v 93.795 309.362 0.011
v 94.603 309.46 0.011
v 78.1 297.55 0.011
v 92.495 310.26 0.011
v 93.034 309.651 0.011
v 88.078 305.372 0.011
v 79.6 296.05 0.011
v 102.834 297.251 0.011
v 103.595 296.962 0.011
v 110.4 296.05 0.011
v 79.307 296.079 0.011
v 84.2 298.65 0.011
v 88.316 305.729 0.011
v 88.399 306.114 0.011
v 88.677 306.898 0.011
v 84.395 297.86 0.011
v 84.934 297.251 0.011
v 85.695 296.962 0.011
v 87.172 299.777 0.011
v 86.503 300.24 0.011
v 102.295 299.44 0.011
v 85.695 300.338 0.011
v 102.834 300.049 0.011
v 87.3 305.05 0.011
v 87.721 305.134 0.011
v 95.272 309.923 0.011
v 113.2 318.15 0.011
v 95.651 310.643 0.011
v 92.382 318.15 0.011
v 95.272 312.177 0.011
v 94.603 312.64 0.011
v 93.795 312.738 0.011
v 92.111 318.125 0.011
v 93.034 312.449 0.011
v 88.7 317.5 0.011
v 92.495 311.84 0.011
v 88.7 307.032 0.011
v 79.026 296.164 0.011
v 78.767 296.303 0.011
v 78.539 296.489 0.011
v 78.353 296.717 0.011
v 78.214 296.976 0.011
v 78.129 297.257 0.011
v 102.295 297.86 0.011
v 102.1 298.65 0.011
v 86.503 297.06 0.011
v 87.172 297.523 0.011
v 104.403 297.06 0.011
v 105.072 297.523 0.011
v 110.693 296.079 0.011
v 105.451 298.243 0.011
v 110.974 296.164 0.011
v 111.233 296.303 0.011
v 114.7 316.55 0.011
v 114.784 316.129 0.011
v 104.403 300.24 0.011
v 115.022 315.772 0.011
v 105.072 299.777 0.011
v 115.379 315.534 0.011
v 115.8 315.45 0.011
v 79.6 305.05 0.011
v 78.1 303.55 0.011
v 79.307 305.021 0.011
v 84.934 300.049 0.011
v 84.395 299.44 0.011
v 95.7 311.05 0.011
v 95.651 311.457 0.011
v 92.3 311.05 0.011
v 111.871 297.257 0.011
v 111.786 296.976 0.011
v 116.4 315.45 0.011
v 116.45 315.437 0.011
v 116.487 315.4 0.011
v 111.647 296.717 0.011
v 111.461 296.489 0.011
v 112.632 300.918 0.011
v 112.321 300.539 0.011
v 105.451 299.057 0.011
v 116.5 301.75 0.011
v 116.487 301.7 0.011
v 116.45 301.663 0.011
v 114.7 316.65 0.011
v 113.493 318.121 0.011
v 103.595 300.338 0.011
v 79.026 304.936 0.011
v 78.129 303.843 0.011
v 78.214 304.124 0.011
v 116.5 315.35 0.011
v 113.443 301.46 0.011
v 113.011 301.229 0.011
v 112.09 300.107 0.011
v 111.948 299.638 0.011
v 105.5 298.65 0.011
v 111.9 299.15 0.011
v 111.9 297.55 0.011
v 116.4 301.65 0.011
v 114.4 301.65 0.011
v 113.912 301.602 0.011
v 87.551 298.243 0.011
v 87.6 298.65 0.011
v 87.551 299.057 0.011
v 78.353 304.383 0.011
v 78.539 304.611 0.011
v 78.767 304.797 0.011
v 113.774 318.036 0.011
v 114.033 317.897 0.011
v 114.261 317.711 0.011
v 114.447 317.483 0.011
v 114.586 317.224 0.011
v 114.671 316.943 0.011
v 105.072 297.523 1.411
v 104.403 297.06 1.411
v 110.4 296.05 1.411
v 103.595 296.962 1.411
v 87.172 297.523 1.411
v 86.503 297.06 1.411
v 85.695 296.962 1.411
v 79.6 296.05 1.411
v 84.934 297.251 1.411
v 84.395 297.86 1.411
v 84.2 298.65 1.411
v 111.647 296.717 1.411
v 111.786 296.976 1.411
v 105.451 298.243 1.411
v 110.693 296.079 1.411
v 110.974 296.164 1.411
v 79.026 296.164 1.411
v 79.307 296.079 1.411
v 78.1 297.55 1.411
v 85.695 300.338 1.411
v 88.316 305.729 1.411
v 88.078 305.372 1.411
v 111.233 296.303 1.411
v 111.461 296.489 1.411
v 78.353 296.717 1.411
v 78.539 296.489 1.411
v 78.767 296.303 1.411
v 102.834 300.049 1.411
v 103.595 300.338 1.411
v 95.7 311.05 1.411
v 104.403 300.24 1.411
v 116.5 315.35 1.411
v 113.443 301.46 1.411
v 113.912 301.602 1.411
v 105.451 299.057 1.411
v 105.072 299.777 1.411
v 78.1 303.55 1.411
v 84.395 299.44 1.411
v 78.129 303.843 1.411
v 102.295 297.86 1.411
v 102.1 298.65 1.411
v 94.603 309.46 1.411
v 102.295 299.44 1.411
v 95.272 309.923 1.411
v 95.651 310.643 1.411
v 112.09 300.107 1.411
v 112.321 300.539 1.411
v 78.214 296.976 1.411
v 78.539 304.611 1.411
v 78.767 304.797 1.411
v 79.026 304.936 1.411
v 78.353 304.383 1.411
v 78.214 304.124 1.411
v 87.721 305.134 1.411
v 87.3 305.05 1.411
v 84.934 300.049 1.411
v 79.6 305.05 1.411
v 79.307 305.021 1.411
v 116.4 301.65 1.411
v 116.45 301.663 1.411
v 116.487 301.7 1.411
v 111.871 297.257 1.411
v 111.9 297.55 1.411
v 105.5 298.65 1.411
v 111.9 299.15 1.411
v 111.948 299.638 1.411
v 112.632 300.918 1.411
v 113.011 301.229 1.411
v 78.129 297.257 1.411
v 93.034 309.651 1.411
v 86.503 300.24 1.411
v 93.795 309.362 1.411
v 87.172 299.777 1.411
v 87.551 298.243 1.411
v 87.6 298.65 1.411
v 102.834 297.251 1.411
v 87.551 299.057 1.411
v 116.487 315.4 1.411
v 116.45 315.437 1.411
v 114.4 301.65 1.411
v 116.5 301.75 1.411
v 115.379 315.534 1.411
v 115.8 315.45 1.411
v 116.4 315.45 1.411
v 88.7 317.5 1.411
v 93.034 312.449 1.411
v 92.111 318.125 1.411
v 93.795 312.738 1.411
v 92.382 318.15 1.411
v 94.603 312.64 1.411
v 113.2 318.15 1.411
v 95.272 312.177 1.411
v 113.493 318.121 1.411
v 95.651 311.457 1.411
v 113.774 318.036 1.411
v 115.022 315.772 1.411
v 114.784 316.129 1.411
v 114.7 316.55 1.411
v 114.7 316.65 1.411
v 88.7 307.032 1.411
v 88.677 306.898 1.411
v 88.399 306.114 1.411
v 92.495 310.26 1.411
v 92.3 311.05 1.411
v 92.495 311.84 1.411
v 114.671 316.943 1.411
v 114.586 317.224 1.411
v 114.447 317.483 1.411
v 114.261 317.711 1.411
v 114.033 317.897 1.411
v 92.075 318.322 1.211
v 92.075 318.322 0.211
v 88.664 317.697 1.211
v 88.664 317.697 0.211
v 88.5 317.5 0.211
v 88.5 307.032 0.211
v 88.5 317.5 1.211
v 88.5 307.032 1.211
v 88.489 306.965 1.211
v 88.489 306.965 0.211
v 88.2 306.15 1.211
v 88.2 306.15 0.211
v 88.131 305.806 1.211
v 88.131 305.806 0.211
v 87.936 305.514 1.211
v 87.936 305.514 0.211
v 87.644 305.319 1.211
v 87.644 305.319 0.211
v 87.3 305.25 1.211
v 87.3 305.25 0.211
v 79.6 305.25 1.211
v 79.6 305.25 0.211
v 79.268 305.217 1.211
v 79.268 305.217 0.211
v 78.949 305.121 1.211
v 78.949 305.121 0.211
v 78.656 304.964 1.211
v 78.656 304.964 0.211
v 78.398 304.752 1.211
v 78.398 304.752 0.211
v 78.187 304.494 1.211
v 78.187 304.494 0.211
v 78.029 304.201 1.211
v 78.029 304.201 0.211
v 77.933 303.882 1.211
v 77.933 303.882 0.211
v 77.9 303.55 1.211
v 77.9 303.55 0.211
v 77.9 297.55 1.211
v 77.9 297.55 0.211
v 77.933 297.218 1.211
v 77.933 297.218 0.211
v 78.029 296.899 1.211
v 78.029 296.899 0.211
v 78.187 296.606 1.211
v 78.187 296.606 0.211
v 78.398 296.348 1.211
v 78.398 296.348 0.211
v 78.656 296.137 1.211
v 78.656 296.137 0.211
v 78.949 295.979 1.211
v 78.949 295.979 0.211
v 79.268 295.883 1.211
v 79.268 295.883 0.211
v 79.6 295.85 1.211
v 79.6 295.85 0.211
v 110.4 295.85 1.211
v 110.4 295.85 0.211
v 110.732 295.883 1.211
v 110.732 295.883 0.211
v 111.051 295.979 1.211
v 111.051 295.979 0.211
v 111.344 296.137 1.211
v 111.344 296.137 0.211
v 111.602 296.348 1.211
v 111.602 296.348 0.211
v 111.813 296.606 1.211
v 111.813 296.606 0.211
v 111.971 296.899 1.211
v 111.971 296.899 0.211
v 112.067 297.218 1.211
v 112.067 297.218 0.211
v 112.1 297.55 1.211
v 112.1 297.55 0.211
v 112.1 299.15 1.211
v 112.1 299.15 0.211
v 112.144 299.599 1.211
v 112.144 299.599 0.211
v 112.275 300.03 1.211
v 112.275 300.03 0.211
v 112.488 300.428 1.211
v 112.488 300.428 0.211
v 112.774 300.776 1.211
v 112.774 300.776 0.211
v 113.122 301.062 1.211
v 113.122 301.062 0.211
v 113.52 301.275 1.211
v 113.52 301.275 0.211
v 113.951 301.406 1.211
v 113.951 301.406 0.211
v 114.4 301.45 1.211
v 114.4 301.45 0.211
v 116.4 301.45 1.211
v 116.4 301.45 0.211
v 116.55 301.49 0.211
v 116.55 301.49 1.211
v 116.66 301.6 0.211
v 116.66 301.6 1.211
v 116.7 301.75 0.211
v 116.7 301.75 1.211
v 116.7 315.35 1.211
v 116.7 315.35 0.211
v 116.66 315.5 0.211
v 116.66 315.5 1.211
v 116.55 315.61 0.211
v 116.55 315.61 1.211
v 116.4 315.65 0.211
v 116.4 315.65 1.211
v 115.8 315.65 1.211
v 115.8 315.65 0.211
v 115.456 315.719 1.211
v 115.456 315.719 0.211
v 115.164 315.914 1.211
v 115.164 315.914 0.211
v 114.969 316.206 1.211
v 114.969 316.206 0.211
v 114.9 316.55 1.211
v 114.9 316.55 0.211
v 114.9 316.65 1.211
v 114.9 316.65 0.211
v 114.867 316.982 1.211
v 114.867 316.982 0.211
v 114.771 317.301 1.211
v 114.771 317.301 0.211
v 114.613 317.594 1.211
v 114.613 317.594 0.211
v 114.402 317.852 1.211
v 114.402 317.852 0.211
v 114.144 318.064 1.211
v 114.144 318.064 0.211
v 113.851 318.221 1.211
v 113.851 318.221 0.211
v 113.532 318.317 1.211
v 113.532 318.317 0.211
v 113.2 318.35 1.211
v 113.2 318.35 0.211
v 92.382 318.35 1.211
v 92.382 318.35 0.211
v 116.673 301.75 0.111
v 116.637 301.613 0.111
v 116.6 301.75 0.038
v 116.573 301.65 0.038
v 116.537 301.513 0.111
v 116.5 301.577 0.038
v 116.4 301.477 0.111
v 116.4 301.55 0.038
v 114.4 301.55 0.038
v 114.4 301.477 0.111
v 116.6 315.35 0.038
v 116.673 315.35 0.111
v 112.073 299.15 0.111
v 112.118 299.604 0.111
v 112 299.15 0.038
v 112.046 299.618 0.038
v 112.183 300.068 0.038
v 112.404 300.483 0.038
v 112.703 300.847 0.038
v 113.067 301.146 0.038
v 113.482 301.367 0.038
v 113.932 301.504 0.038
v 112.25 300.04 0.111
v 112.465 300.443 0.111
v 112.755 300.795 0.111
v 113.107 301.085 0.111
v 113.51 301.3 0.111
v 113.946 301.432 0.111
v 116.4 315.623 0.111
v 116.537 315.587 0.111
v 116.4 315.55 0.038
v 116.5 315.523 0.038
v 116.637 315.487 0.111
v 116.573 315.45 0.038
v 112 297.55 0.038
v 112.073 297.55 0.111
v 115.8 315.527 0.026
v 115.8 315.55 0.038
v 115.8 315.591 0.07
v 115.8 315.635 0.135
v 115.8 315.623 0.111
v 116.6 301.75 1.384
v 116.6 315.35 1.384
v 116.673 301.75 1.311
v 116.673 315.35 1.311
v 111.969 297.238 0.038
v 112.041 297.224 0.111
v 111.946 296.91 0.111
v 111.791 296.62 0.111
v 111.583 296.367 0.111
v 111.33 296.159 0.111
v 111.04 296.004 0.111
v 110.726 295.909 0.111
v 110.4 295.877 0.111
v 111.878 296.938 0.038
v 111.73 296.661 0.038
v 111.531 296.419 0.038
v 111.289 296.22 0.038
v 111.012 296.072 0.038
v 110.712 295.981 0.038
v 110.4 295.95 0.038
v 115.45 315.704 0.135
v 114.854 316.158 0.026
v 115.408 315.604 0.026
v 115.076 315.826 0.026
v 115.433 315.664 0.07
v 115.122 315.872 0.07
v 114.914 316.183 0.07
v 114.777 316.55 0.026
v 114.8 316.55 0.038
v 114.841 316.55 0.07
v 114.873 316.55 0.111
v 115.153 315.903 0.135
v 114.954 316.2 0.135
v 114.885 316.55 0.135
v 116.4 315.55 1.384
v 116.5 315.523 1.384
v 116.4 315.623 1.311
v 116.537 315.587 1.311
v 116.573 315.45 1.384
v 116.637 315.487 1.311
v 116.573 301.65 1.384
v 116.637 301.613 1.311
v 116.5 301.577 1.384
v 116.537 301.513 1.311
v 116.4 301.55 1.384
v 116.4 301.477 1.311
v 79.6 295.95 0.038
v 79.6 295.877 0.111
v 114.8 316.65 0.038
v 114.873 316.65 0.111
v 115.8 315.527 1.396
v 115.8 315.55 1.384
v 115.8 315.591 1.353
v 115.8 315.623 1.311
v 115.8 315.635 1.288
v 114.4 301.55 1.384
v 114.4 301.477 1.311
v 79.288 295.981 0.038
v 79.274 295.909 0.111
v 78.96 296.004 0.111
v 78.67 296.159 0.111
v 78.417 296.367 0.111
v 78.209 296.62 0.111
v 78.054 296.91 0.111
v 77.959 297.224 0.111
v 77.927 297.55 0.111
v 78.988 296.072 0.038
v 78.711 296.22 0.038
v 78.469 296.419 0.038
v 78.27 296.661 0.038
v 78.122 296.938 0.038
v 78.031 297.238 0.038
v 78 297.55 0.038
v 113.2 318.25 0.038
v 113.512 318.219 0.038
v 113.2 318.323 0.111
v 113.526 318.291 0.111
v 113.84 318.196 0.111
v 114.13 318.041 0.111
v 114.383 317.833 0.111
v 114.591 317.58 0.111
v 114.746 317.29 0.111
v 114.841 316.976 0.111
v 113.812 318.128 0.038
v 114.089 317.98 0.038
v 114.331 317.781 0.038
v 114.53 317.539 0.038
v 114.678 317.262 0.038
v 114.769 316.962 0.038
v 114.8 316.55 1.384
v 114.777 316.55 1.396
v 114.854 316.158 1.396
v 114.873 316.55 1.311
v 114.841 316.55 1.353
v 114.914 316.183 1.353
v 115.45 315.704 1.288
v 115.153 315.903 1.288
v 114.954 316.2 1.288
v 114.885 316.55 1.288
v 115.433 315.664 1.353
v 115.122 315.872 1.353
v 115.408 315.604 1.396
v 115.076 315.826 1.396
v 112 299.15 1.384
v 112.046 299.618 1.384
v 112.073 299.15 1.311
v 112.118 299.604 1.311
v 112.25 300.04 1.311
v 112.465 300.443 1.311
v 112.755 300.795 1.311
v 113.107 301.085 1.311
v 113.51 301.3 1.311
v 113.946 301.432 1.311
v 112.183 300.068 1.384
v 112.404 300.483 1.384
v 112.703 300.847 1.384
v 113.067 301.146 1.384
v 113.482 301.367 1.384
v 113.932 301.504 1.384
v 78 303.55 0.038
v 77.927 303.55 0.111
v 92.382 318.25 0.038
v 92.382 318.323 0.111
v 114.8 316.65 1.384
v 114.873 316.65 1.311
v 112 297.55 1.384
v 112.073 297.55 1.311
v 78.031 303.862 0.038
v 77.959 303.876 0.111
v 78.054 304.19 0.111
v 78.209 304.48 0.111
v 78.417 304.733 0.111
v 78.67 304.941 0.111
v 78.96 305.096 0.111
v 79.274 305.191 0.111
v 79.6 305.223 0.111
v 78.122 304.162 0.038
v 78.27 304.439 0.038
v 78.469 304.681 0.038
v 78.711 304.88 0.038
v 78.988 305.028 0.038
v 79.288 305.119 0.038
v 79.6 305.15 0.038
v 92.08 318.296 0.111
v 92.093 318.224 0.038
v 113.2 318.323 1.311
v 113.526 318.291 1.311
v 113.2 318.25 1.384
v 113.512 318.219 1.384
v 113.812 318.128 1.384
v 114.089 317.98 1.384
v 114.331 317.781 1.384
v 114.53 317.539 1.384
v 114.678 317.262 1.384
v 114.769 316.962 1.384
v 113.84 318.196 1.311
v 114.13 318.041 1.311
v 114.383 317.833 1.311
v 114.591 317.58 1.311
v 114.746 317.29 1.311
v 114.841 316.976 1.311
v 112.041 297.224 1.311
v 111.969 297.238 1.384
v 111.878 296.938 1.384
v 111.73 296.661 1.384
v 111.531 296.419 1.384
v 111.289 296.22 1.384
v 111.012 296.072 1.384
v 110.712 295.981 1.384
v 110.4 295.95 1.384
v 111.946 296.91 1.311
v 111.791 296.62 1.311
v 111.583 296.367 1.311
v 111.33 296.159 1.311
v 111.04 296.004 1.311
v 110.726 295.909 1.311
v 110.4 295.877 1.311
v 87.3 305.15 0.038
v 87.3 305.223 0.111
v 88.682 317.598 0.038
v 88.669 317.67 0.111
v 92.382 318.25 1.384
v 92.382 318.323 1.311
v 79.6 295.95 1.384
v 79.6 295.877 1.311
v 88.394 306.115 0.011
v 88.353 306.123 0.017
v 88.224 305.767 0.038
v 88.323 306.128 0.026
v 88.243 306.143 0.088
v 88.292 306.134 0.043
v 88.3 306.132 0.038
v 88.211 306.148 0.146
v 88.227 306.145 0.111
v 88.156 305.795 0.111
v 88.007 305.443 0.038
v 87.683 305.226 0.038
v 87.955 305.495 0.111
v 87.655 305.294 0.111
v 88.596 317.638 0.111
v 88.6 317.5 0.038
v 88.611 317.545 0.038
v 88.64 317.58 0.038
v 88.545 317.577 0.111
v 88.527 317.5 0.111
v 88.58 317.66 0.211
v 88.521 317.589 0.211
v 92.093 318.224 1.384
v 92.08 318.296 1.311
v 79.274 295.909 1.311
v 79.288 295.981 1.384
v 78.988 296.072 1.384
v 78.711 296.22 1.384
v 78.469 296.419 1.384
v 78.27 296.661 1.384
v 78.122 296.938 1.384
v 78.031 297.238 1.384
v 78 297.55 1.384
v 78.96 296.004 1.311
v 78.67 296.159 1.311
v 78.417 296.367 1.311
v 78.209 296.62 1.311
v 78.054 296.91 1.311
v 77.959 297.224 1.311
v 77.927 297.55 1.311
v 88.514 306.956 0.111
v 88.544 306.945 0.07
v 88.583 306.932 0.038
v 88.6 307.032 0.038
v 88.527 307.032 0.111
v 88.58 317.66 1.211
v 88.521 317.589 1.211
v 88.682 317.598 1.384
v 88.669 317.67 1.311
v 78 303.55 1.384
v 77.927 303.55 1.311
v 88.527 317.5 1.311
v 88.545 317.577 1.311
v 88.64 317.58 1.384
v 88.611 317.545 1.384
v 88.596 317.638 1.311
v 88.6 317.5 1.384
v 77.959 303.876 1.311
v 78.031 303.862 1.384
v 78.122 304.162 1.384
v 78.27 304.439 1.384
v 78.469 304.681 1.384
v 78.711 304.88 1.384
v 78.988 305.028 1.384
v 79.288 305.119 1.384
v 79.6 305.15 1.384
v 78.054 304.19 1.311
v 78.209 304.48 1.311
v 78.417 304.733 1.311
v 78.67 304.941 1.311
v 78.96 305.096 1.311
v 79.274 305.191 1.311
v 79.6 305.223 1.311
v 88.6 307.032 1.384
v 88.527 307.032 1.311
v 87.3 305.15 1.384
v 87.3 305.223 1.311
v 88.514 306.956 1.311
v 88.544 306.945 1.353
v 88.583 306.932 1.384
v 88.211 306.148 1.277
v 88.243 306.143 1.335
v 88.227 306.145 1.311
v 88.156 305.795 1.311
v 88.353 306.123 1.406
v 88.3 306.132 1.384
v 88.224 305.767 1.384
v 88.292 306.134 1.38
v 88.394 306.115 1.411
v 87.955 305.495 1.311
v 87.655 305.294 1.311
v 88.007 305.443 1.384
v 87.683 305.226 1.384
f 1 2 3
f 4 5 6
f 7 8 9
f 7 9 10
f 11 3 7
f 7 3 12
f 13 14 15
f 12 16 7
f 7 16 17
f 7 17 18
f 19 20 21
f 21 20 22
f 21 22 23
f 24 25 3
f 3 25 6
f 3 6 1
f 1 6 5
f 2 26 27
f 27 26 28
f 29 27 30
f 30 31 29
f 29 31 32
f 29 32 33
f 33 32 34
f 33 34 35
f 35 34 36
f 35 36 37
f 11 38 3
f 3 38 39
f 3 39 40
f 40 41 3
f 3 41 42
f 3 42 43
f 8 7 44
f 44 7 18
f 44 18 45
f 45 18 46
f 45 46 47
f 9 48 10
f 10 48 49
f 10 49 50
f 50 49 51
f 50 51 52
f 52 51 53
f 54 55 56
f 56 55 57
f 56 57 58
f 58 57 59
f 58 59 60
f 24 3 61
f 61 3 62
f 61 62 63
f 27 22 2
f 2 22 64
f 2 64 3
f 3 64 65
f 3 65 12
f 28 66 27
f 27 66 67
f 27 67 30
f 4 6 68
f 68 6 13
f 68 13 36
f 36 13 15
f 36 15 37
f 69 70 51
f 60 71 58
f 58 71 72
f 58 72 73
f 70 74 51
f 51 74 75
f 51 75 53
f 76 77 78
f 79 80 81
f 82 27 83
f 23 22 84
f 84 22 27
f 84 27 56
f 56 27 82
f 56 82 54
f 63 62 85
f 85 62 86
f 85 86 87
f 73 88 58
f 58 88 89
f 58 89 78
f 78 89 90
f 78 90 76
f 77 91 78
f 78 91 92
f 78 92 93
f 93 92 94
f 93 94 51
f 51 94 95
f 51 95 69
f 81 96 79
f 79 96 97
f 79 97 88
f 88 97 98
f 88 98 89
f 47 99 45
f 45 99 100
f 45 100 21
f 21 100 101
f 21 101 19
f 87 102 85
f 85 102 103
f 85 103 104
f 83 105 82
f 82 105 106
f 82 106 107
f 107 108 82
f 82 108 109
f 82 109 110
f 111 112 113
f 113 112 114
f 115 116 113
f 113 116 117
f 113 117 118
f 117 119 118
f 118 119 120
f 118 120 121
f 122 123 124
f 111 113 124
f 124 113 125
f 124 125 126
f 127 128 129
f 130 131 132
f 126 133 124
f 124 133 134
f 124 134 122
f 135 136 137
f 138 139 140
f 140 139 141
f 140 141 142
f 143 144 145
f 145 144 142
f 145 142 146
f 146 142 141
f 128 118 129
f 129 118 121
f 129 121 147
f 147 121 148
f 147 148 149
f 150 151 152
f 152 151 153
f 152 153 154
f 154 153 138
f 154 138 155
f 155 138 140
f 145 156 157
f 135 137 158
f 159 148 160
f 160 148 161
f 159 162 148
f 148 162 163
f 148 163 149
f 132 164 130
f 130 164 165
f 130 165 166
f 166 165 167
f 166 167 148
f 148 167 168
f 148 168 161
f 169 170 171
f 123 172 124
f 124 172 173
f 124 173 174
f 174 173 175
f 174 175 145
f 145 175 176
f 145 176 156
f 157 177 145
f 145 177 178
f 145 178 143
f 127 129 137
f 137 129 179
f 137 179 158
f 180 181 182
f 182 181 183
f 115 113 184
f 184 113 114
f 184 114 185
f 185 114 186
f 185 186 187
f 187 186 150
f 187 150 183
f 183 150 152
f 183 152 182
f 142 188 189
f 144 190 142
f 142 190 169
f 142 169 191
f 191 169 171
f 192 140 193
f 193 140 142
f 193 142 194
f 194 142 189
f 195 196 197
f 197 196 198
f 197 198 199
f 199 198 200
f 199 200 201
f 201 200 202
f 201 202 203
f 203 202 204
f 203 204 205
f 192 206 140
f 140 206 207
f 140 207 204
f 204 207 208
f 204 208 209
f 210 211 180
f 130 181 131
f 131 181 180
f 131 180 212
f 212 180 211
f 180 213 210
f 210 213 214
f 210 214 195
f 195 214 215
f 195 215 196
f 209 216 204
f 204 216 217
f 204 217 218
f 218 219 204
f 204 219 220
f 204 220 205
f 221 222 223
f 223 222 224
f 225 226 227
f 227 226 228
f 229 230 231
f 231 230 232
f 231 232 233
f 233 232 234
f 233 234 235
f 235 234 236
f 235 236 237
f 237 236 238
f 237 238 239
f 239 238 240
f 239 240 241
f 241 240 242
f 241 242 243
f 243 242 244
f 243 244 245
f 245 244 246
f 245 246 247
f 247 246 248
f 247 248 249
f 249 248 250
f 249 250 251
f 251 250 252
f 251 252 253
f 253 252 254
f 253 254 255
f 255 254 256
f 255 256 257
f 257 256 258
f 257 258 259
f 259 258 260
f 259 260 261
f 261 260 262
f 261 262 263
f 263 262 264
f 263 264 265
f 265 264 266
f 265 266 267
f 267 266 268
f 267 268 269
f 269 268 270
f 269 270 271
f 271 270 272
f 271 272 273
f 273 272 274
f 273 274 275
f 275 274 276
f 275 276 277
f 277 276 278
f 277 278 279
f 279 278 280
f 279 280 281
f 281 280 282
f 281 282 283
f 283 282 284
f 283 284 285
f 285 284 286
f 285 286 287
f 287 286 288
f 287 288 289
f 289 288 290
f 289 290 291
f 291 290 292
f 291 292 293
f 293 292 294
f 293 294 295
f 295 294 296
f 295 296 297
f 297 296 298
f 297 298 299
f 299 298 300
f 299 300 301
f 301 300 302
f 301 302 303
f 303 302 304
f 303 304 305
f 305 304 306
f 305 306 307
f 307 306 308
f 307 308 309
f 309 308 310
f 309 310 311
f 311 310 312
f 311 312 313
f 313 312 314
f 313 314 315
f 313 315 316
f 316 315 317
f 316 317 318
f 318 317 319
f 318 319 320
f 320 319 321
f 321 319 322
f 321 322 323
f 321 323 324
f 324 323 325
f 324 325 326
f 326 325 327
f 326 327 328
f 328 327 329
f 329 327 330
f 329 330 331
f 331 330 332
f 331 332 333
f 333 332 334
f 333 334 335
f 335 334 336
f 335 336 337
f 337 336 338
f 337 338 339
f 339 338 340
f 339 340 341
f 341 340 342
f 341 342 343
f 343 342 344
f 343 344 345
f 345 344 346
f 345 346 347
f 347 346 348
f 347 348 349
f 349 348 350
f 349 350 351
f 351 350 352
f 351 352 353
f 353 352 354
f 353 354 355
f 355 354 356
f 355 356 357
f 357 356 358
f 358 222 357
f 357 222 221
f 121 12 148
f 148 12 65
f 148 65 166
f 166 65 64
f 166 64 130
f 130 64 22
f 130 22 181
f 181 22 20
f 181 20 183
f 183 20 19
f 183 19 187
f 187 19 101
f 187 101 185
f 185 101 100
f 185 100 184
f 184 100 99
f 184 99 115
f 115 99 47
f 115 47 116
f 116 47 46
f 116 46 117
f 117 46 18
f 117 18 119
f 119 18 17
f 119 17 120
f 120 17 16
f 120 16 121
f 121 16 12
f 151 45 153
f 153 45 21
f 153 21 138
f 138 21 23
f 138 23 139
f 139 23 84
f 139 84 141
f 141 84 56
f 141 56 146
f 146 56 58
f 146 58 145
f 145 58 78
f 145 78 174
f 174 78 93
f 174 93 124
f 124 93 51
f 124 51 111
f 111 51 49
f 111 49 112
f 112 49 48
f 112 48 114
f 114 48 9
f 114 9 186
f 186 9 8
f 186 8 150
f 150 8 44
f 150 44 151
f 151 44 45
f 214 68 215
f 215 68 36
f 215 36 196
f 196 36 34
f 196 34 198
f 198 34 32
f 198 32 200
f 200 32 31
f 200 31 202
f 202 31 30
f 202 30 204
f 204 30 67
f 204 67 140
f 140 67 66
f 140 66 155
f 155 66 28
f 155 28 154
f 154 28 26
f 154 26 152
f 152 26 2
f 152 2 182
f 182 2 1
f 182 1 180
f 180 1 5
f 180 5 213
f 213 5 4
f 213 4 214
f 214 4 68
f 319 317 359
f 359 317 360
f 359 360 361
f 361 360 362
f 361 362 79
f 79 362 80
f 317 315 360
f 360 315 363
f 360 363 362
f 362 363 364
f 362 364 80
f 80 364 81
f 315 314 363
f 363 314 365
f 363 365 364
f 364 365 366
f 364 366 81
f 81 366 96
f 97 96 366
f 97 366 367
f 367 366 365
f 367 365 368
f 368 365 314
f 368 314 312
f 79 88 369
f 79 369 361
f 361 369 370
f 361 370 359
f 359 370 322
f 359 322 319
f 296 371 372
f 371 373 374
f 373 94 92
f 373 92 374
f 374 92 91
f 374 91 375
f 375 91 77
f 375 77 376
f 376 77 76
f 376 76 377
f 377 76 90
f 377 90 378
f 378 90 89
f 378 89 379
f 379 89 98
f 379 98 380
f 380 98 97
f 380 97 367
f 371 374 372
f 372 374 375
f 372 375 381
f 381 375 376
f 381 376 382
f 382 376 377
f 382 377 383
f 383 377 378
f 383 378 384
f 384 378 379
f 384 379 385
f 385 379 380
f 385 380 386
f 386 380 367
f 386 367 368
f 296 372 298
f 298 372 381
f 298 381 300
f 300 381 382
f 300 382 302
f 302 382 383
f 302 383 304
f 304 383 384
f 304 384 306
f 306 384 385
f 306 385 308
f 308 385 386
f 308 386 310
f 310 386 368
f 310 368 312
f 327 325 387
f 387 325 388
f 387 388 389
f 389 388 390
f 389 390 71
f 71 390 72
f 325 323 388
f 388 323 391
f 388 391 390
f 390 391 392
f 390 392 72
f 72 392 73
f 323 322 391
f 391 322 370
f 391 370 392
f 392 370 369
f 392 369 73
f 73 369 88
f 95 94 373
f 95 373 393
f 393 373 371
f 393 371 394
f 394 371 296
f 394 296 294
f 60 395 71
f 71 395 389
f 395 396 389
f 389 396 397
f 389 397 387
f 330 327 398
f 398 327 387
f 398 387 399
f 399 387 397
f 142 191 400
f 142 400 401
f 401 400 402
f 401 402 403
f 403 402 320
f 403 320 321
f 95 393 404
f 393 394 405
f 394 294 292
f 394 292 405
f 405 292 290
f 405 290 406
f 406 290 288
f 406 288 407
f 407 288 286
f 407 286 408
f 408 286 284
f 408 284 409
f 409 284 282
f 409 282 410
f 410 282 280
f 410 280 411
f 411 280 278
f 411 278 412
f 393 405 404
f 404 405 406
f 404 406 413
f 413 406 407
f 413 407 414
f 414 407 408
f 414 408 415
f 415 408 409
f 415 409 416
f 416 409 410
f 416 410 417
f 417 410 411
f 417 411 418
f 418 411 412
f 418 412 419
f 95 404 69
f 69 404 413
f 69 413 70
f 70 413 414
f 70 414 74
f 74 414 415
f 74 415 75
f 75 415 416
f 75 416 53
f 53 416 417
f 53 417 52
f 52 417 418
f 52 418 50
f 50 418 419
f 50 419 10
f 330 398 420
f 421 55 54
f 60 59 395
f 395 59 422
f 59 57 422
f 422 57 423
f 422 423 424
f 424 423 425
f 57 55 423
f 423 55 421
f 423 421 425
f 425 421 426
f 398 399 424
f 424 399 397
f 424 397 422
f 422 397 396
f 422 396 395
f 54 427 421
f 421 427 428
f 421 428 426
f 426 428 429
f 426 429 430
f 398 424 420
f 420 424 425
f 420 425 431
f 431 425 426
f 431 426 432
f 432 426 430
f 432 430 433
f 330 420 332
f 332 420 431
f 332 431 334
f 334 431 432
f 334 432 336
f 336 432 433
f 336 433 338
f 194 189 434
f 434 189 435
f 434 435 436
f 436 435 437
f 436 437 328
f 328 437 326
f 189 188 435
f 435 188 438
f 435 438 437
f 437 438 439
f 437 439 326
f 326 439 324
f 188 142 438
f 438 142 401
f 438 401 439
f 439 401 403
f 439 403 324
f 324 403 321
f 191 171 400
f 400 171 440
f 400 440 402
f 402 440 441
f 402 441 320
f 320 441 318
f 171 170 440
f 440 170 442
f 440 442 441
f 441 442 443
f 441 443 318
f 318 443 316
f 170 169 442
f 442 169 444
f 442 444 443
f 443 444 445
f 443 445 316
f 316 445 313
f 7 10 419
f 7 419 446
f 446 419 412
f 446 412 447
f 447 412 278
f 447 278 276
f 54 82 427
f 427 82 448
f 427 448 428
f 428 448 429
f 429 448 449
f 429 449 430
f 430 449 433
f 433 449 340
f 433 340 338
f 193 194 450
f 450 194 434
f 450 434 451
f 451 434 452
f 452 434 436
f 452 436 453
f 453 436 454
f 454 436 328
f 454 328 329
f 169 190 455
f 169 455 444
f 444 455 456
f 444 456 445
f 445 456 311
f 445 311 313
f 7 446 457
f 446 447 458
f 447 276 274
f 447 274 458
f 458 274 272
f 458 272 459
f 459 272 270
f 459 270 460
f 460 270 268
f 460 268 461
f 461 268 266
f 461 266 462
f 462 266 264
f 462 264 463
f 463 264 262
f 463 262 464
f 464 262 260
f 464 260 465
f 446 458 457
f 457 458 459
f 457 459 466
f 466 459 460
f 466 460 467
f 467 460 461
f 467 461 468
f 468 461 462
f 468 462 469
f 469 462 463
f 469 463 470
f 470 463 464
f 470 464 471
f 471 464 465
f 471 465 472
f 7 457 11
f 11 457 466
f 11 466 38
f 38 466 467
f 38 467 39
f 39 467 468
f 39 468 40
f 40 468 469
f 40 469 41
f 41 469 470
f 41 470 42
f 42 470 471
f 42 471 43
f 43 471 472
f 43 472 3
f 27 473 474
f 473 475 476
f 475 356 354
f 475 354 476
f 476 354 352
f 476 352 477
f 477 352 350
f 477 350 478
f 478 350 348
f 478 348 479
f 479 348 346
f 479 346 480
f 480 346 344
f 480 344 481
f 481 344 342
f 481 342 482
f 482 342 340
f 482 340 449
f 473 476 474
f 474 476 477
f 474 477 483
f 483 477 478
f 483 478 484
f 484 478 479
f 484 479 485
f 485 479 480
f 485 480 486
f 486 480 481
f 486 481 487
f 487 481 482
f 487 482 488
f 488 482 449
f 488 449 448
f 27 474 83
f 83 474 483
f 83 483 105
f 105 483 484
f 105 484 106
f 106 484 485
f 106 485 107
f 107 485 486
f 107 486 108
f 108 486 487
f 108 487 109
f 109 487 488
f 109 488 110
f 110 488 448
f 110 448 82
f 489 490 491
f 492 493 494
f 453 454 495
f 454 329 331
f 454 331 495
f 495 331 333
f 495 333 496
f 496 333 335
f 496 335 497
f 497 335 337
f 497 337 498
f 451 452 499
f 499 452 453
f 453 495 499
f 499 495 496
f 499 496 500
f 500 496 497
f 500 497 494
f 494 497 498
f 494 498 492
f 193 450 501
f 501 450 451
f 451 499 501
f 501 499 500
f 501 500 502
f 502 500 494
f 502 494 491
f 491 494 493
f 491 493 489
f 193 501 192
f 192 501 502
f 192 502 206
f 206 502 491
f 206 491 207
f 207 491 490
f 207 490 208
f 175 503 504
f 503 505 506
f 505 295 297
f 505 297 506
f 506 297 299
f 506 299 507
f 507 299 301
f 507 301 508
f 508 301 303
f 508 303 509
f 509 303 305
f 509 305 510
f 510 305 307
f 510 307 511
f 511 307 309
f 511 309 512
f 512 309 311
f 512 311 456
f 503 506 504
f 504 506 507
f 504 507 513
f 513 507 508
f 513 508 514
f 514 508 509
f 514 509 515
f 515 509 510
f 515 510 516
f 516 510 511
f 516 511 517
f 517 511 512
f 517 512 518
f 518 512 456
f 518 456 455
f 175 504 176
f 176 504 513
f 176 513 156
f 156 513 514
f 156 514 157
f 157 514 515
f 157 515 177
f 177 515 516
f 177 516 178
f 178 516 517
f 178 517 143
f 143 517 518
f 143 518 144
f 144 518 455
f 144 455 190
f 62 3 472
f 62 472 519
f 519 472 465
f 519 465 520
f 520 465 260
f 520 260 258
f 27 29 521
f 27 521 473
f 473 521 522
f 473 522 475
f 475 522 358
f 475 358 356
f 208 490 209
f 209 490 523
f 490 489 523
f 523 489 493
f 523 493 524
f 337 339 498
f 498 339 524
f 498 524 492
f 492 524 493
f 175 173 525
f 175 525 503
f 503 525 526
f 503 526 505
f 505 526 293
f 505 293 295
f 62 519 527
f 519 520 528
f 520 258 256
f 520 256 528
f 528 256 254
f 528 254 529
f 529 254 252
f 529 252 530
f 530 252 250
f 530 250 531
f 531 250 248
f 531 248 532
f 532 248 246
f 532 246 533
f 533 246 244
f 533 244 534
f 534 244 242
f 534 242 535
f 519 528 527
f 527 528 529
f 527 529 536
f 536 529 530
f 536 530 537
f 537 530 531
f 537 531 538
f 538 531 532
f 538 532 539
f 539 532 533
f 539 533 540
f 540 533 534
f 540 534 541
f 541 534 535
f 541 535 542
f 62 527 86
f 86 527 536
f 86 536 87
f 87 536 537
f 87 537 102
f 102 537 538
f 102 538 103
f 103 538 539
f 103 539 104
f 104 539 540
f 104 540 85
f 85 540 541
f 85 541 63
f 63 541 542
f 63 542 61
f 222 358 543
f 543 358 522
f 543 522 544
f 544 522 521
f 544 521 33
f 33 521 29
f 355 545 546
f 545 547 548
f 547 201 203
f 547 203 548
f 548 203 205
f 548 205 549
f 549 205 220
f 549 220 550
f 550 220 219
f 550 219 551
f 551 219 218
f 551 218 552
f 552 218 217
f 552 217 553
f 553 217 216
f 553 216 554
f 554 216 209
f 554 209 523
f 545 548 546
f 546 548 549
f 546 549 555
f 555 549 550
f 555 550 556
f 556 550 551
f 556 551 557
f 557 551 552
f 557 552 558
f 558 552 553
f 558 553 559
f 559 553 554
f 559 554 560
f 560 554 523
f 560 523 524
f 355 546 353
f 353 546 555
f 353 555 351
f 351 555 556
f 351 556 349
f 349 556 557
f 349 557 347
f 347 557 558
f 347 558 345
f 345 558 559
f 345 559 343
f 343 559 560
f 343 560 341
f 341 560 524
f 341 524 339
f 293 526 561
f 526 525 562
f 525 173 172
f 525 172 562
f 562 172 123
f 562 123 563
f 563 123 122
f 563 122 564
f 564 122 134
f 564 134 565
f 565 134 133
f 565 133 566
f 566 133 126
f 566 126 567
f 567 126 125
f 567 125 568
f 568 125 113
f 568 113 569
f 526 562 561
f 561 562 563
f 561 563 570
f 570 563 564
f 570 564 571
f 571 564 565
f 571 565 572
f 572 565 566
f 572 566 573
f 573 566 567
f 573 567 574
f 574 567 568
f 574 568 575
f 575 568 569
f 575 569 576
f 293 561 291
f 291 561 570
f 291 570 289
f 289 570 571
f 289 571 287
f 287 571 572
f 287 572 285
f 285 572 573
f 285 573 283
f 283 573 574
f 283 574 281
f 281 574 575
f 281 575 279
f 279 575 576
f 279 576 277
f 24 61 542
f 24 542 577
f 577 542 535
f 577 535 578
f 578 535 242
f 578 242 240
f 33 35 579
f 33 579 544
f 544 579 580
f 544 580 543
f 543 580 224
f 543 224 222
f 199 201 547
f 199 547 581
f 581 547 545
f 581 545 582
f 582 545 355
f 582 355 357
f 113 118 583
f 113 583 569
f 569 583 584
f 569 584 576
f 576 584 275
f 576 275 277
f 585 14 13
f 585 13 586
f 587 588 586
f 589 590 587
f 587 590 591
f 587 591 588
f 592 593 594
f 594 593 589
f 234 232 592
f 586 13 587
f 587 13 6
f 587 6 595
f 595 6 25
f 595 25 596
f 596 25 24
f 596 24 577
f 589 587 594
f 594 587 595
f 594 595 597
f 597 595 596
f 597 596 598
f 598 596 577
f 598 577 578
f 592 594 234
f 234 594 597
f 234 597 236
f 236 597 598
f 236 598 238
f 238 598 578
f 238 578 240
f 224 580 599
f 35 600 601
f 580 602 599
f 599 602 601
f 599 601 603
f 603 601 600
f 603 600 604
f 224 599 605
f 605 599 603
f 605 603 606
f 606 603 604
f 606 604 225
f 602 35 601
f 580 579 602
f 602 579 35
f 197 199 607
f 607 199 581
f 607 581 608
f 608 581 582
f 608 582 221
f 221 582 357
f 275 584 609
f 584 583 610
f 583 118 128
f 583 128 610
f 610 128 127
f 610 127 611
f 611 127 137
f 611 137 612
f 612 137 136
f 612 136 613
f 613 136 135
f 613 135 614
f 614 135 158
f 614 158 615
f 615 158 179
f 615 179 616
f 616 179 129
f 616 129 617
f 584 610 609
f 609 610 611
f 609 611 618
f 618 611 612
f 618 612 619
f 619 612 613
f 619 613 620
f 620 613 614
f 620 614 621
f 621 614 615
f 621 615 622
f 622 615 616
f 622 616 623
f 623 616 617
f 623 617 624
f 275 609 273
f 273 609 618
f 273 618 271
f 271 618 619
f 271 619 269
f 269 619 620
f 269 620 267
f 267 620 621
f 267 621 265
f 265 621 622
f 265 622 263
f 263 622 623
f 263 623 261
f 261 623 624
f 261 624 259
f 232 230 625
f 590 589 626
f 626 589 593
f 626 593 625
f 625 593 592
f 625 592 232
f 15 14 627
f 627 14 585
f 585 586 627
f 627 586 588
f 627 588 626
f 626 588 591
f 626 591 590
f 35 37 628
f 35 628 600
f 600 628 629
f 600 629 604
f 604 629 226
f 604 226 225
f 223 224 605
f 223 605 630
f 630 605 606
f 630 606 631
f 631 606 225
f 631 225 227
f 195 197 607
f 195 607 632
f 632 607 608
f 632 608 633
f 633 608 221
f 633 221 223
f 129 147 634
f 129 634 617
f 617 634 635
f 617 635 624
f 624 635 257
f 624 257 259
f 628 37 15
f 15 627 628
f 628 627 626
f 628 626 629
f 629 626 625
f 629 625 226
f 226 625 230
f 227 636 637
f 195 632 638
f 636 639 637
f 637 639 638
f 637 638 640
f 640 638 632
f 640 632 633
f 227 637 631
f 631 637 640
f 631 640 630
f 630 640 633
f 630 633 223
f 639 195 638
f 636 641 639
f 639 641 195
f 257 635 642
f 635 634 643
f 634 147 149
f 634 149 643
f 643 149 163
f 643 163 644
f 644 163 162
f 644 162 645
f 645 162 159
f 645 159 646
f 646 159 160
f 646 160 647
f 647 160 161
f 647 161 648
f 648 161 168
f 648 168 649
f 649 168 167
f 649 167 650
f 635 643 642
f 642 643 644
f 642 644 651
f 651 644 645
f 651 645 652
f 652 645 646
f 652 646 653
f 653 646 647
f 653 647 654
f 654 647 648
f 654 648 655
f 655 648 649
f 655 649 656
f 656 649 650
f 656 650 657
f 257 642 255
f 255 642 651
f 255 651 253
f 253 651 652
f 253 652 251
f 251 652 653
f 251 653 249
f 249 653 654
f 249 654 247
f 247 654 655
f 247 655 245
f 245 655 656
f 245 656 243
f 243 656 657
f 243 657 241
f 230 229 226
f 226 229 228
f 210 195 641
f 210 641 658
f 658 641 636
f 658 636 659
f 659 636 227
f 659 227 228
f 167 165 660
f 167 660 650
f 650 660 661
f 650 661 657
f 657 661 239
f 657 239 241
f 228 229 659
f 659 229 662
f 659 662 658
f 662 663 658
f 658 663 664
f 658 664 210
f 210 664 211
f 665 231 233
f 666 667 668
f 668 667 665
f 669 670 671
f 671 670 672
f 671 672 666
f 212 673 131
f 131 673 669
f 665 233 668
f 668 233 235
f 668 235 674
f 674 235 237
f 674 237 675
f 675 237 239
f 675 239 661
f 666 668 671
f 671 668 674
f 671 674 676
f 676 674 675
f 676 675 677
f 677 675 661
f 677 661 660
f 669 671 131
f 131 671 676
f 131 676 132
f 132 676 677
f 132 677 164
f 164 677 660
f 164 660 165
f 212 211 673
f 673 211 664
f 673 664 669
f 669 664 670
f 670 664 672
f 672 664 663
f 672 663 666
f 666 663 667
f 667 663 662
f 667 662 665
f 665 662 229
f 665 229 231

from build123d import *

# Parameters (mm, degrees)
SKETCH1_R           = 1.7
BOSS_EXTRUDE1_DEPTH = 1.4
FILLET1_R           = 0.2


with BuildPart() as part:
    # Sketch1 → Boss-Extrude1 (new body)
    with BuildSketch(Plane.XY):
        with BuildLine():
            Line((88.2, 306.15), (88.5, 306.997300304))
            Line((88.5, 306.997300304), (88.5, 317.666666667))
            Line((88.5, 317.666666667), (92.075260805, 318.322131148))
            ThreePointArc((92.075260805, 318.322131148), (92.227907414, 318.343018451), (92.381818182, 318.35))
            Line((92.381818182, 318.35), (113.2, 318.35))
            ThreePointArc((113.2, 318.35), (114.402081528, 317.852081528), (114.9, 316.65))
            Line((114.9, 316.65), (114.9, 316.55))
            ThreePointArc((114.9, 316.55), (115.163603897, 315.913603897), (115.8, 315.65))
            Line((115.8, 315.65), (116.4, 315.65))
            ThreePointArc((116.4, 315.65), (116.612132034, 315.562132034), (116.7, 315.35))
            Line((116.7, 315.35), (116.7, 301.75))
            ThreePointArc((116.7, 301.75), (116.612132034, 301.537867966), (116.4, 301.45))
            Line((116.4, 301.45), (114.4, 301.45))
            ThreePointArc((114.4, 301.45), (112.773654403, 300.776345597), (112.1, 299.15))
            Line((112.1, 299.15), (112.1, 297.55))
            ThreePointArc((112.1, 297.55), (111.602081528, 296.347918472), (110.4, 295.85))
            Line((110.4, 295.85), (79.6, 295.85))
            ThreePointArc((79.6, 295.85), (78.397918472, 296.347918472), (77.9, 297.55))
            Line((77.9, 297.55), (77.9, 303.55))
            ThreePointArc((77.9, 303.55), (78.397918472, 304.752081528), (79.6, 305.25))
            Line((79.6, 305.25), (87.3, 305.25))
            ThreePointArc((87.3, 305.25), (87.936396103, 305.513603897), (88.2, 306.15))
        make_face()
        with Locations((85.9, 298.65)):
            Circle(SKETCH1_R, mode=Mode.SUBTRACT)
        with Locations((103.8, 298.65)):
            Circle(SKETCH1_R, mode=Mode.SUBTRACT)
        with Locations((94, 311.05)):
            Circle(SKETCH1_R, mode=Mode.SUBTRACT)
    extrude(amount=BOSS_EXTRUDE1_DEPTH)

    # Fillet1
    fillet1_edges = [part.edges().sort_by_distance(p)[0] for p in [
        (88.35, 306.573650152, 1.4),
        (87.936396103, 305.513603897, 1.4),
        (83.45, 305.25, 1.4),
        (92.227907414, 318.343018451, 0),
        (102.790909091, 318.35, 0),
        (114.402081528, 317.852081528, 0),
        (114.9, 316.6, 0),
        (115.163603897, 315.913603897, 0),
        (116.1, 315.65, 0),
        (116.612132034, 315.562132034, 0),
        (116.7, 308.55, 0),
        (116.612132034, 301.537867966, 0),
        (115.4, 301.45, 0),
        (78.397918472, 304.752081528, 1.4),
        (112.773654403, 300.776345597, 0),
        (112.1, 298.35, 0),
        (111.602081528, 296.347918472, 0),
        (95, 295.85, 0),
        (78.397918472, 296.347918472, 0),
        (77.9, 300.55, 0),
        (78.397918472, 304.752081528, 0),
        (83.45, 305.25, 0),
        (87.936396103, 305.513603897, 0),
        (88.35, 306.573650152, 0),
        (77.9, 300.55, 1.4),
        (88.5, 312.331983485, 0),
        (90.287630402, 317.994398907, 0),
        (78.397918472, 296.347918472, 1.4),
        (95, 295.85, 1.4),
        (88.5, 306.997300304, 0.7),
        (88.5, 317.666666667, 0.7),
        (111.602081528, 296.347918472, 1.4),
        (112.1, 298.35, 1.4),
        (112.773654403, 300.776345597, 1.4),
        (90.287630402, 317.994398907, 1.4),
        (115.4, 301.45, 1.4),
        (116.612132034, 301.537867966, 1.4),
        (116.7, 308.55, 1.4),
        (116.612132034, 315.562132034, 1.4),
        (116.1, 315.65, 1.4),
        (115.163603897, 315.913603897, 1.4),
        (114.9, 316.6, 1.4),
        (114.402081528, 317.852081528, 1.4),
        (102.790909091, 318.35, 1.4),
        (92.227907414, 318.343018451, 1.4),
        (88.5, 312.331983485, 1.4),
    ]]
    fillet(fillet1_edges, radius=FILLET1_R)


solid = part.part
